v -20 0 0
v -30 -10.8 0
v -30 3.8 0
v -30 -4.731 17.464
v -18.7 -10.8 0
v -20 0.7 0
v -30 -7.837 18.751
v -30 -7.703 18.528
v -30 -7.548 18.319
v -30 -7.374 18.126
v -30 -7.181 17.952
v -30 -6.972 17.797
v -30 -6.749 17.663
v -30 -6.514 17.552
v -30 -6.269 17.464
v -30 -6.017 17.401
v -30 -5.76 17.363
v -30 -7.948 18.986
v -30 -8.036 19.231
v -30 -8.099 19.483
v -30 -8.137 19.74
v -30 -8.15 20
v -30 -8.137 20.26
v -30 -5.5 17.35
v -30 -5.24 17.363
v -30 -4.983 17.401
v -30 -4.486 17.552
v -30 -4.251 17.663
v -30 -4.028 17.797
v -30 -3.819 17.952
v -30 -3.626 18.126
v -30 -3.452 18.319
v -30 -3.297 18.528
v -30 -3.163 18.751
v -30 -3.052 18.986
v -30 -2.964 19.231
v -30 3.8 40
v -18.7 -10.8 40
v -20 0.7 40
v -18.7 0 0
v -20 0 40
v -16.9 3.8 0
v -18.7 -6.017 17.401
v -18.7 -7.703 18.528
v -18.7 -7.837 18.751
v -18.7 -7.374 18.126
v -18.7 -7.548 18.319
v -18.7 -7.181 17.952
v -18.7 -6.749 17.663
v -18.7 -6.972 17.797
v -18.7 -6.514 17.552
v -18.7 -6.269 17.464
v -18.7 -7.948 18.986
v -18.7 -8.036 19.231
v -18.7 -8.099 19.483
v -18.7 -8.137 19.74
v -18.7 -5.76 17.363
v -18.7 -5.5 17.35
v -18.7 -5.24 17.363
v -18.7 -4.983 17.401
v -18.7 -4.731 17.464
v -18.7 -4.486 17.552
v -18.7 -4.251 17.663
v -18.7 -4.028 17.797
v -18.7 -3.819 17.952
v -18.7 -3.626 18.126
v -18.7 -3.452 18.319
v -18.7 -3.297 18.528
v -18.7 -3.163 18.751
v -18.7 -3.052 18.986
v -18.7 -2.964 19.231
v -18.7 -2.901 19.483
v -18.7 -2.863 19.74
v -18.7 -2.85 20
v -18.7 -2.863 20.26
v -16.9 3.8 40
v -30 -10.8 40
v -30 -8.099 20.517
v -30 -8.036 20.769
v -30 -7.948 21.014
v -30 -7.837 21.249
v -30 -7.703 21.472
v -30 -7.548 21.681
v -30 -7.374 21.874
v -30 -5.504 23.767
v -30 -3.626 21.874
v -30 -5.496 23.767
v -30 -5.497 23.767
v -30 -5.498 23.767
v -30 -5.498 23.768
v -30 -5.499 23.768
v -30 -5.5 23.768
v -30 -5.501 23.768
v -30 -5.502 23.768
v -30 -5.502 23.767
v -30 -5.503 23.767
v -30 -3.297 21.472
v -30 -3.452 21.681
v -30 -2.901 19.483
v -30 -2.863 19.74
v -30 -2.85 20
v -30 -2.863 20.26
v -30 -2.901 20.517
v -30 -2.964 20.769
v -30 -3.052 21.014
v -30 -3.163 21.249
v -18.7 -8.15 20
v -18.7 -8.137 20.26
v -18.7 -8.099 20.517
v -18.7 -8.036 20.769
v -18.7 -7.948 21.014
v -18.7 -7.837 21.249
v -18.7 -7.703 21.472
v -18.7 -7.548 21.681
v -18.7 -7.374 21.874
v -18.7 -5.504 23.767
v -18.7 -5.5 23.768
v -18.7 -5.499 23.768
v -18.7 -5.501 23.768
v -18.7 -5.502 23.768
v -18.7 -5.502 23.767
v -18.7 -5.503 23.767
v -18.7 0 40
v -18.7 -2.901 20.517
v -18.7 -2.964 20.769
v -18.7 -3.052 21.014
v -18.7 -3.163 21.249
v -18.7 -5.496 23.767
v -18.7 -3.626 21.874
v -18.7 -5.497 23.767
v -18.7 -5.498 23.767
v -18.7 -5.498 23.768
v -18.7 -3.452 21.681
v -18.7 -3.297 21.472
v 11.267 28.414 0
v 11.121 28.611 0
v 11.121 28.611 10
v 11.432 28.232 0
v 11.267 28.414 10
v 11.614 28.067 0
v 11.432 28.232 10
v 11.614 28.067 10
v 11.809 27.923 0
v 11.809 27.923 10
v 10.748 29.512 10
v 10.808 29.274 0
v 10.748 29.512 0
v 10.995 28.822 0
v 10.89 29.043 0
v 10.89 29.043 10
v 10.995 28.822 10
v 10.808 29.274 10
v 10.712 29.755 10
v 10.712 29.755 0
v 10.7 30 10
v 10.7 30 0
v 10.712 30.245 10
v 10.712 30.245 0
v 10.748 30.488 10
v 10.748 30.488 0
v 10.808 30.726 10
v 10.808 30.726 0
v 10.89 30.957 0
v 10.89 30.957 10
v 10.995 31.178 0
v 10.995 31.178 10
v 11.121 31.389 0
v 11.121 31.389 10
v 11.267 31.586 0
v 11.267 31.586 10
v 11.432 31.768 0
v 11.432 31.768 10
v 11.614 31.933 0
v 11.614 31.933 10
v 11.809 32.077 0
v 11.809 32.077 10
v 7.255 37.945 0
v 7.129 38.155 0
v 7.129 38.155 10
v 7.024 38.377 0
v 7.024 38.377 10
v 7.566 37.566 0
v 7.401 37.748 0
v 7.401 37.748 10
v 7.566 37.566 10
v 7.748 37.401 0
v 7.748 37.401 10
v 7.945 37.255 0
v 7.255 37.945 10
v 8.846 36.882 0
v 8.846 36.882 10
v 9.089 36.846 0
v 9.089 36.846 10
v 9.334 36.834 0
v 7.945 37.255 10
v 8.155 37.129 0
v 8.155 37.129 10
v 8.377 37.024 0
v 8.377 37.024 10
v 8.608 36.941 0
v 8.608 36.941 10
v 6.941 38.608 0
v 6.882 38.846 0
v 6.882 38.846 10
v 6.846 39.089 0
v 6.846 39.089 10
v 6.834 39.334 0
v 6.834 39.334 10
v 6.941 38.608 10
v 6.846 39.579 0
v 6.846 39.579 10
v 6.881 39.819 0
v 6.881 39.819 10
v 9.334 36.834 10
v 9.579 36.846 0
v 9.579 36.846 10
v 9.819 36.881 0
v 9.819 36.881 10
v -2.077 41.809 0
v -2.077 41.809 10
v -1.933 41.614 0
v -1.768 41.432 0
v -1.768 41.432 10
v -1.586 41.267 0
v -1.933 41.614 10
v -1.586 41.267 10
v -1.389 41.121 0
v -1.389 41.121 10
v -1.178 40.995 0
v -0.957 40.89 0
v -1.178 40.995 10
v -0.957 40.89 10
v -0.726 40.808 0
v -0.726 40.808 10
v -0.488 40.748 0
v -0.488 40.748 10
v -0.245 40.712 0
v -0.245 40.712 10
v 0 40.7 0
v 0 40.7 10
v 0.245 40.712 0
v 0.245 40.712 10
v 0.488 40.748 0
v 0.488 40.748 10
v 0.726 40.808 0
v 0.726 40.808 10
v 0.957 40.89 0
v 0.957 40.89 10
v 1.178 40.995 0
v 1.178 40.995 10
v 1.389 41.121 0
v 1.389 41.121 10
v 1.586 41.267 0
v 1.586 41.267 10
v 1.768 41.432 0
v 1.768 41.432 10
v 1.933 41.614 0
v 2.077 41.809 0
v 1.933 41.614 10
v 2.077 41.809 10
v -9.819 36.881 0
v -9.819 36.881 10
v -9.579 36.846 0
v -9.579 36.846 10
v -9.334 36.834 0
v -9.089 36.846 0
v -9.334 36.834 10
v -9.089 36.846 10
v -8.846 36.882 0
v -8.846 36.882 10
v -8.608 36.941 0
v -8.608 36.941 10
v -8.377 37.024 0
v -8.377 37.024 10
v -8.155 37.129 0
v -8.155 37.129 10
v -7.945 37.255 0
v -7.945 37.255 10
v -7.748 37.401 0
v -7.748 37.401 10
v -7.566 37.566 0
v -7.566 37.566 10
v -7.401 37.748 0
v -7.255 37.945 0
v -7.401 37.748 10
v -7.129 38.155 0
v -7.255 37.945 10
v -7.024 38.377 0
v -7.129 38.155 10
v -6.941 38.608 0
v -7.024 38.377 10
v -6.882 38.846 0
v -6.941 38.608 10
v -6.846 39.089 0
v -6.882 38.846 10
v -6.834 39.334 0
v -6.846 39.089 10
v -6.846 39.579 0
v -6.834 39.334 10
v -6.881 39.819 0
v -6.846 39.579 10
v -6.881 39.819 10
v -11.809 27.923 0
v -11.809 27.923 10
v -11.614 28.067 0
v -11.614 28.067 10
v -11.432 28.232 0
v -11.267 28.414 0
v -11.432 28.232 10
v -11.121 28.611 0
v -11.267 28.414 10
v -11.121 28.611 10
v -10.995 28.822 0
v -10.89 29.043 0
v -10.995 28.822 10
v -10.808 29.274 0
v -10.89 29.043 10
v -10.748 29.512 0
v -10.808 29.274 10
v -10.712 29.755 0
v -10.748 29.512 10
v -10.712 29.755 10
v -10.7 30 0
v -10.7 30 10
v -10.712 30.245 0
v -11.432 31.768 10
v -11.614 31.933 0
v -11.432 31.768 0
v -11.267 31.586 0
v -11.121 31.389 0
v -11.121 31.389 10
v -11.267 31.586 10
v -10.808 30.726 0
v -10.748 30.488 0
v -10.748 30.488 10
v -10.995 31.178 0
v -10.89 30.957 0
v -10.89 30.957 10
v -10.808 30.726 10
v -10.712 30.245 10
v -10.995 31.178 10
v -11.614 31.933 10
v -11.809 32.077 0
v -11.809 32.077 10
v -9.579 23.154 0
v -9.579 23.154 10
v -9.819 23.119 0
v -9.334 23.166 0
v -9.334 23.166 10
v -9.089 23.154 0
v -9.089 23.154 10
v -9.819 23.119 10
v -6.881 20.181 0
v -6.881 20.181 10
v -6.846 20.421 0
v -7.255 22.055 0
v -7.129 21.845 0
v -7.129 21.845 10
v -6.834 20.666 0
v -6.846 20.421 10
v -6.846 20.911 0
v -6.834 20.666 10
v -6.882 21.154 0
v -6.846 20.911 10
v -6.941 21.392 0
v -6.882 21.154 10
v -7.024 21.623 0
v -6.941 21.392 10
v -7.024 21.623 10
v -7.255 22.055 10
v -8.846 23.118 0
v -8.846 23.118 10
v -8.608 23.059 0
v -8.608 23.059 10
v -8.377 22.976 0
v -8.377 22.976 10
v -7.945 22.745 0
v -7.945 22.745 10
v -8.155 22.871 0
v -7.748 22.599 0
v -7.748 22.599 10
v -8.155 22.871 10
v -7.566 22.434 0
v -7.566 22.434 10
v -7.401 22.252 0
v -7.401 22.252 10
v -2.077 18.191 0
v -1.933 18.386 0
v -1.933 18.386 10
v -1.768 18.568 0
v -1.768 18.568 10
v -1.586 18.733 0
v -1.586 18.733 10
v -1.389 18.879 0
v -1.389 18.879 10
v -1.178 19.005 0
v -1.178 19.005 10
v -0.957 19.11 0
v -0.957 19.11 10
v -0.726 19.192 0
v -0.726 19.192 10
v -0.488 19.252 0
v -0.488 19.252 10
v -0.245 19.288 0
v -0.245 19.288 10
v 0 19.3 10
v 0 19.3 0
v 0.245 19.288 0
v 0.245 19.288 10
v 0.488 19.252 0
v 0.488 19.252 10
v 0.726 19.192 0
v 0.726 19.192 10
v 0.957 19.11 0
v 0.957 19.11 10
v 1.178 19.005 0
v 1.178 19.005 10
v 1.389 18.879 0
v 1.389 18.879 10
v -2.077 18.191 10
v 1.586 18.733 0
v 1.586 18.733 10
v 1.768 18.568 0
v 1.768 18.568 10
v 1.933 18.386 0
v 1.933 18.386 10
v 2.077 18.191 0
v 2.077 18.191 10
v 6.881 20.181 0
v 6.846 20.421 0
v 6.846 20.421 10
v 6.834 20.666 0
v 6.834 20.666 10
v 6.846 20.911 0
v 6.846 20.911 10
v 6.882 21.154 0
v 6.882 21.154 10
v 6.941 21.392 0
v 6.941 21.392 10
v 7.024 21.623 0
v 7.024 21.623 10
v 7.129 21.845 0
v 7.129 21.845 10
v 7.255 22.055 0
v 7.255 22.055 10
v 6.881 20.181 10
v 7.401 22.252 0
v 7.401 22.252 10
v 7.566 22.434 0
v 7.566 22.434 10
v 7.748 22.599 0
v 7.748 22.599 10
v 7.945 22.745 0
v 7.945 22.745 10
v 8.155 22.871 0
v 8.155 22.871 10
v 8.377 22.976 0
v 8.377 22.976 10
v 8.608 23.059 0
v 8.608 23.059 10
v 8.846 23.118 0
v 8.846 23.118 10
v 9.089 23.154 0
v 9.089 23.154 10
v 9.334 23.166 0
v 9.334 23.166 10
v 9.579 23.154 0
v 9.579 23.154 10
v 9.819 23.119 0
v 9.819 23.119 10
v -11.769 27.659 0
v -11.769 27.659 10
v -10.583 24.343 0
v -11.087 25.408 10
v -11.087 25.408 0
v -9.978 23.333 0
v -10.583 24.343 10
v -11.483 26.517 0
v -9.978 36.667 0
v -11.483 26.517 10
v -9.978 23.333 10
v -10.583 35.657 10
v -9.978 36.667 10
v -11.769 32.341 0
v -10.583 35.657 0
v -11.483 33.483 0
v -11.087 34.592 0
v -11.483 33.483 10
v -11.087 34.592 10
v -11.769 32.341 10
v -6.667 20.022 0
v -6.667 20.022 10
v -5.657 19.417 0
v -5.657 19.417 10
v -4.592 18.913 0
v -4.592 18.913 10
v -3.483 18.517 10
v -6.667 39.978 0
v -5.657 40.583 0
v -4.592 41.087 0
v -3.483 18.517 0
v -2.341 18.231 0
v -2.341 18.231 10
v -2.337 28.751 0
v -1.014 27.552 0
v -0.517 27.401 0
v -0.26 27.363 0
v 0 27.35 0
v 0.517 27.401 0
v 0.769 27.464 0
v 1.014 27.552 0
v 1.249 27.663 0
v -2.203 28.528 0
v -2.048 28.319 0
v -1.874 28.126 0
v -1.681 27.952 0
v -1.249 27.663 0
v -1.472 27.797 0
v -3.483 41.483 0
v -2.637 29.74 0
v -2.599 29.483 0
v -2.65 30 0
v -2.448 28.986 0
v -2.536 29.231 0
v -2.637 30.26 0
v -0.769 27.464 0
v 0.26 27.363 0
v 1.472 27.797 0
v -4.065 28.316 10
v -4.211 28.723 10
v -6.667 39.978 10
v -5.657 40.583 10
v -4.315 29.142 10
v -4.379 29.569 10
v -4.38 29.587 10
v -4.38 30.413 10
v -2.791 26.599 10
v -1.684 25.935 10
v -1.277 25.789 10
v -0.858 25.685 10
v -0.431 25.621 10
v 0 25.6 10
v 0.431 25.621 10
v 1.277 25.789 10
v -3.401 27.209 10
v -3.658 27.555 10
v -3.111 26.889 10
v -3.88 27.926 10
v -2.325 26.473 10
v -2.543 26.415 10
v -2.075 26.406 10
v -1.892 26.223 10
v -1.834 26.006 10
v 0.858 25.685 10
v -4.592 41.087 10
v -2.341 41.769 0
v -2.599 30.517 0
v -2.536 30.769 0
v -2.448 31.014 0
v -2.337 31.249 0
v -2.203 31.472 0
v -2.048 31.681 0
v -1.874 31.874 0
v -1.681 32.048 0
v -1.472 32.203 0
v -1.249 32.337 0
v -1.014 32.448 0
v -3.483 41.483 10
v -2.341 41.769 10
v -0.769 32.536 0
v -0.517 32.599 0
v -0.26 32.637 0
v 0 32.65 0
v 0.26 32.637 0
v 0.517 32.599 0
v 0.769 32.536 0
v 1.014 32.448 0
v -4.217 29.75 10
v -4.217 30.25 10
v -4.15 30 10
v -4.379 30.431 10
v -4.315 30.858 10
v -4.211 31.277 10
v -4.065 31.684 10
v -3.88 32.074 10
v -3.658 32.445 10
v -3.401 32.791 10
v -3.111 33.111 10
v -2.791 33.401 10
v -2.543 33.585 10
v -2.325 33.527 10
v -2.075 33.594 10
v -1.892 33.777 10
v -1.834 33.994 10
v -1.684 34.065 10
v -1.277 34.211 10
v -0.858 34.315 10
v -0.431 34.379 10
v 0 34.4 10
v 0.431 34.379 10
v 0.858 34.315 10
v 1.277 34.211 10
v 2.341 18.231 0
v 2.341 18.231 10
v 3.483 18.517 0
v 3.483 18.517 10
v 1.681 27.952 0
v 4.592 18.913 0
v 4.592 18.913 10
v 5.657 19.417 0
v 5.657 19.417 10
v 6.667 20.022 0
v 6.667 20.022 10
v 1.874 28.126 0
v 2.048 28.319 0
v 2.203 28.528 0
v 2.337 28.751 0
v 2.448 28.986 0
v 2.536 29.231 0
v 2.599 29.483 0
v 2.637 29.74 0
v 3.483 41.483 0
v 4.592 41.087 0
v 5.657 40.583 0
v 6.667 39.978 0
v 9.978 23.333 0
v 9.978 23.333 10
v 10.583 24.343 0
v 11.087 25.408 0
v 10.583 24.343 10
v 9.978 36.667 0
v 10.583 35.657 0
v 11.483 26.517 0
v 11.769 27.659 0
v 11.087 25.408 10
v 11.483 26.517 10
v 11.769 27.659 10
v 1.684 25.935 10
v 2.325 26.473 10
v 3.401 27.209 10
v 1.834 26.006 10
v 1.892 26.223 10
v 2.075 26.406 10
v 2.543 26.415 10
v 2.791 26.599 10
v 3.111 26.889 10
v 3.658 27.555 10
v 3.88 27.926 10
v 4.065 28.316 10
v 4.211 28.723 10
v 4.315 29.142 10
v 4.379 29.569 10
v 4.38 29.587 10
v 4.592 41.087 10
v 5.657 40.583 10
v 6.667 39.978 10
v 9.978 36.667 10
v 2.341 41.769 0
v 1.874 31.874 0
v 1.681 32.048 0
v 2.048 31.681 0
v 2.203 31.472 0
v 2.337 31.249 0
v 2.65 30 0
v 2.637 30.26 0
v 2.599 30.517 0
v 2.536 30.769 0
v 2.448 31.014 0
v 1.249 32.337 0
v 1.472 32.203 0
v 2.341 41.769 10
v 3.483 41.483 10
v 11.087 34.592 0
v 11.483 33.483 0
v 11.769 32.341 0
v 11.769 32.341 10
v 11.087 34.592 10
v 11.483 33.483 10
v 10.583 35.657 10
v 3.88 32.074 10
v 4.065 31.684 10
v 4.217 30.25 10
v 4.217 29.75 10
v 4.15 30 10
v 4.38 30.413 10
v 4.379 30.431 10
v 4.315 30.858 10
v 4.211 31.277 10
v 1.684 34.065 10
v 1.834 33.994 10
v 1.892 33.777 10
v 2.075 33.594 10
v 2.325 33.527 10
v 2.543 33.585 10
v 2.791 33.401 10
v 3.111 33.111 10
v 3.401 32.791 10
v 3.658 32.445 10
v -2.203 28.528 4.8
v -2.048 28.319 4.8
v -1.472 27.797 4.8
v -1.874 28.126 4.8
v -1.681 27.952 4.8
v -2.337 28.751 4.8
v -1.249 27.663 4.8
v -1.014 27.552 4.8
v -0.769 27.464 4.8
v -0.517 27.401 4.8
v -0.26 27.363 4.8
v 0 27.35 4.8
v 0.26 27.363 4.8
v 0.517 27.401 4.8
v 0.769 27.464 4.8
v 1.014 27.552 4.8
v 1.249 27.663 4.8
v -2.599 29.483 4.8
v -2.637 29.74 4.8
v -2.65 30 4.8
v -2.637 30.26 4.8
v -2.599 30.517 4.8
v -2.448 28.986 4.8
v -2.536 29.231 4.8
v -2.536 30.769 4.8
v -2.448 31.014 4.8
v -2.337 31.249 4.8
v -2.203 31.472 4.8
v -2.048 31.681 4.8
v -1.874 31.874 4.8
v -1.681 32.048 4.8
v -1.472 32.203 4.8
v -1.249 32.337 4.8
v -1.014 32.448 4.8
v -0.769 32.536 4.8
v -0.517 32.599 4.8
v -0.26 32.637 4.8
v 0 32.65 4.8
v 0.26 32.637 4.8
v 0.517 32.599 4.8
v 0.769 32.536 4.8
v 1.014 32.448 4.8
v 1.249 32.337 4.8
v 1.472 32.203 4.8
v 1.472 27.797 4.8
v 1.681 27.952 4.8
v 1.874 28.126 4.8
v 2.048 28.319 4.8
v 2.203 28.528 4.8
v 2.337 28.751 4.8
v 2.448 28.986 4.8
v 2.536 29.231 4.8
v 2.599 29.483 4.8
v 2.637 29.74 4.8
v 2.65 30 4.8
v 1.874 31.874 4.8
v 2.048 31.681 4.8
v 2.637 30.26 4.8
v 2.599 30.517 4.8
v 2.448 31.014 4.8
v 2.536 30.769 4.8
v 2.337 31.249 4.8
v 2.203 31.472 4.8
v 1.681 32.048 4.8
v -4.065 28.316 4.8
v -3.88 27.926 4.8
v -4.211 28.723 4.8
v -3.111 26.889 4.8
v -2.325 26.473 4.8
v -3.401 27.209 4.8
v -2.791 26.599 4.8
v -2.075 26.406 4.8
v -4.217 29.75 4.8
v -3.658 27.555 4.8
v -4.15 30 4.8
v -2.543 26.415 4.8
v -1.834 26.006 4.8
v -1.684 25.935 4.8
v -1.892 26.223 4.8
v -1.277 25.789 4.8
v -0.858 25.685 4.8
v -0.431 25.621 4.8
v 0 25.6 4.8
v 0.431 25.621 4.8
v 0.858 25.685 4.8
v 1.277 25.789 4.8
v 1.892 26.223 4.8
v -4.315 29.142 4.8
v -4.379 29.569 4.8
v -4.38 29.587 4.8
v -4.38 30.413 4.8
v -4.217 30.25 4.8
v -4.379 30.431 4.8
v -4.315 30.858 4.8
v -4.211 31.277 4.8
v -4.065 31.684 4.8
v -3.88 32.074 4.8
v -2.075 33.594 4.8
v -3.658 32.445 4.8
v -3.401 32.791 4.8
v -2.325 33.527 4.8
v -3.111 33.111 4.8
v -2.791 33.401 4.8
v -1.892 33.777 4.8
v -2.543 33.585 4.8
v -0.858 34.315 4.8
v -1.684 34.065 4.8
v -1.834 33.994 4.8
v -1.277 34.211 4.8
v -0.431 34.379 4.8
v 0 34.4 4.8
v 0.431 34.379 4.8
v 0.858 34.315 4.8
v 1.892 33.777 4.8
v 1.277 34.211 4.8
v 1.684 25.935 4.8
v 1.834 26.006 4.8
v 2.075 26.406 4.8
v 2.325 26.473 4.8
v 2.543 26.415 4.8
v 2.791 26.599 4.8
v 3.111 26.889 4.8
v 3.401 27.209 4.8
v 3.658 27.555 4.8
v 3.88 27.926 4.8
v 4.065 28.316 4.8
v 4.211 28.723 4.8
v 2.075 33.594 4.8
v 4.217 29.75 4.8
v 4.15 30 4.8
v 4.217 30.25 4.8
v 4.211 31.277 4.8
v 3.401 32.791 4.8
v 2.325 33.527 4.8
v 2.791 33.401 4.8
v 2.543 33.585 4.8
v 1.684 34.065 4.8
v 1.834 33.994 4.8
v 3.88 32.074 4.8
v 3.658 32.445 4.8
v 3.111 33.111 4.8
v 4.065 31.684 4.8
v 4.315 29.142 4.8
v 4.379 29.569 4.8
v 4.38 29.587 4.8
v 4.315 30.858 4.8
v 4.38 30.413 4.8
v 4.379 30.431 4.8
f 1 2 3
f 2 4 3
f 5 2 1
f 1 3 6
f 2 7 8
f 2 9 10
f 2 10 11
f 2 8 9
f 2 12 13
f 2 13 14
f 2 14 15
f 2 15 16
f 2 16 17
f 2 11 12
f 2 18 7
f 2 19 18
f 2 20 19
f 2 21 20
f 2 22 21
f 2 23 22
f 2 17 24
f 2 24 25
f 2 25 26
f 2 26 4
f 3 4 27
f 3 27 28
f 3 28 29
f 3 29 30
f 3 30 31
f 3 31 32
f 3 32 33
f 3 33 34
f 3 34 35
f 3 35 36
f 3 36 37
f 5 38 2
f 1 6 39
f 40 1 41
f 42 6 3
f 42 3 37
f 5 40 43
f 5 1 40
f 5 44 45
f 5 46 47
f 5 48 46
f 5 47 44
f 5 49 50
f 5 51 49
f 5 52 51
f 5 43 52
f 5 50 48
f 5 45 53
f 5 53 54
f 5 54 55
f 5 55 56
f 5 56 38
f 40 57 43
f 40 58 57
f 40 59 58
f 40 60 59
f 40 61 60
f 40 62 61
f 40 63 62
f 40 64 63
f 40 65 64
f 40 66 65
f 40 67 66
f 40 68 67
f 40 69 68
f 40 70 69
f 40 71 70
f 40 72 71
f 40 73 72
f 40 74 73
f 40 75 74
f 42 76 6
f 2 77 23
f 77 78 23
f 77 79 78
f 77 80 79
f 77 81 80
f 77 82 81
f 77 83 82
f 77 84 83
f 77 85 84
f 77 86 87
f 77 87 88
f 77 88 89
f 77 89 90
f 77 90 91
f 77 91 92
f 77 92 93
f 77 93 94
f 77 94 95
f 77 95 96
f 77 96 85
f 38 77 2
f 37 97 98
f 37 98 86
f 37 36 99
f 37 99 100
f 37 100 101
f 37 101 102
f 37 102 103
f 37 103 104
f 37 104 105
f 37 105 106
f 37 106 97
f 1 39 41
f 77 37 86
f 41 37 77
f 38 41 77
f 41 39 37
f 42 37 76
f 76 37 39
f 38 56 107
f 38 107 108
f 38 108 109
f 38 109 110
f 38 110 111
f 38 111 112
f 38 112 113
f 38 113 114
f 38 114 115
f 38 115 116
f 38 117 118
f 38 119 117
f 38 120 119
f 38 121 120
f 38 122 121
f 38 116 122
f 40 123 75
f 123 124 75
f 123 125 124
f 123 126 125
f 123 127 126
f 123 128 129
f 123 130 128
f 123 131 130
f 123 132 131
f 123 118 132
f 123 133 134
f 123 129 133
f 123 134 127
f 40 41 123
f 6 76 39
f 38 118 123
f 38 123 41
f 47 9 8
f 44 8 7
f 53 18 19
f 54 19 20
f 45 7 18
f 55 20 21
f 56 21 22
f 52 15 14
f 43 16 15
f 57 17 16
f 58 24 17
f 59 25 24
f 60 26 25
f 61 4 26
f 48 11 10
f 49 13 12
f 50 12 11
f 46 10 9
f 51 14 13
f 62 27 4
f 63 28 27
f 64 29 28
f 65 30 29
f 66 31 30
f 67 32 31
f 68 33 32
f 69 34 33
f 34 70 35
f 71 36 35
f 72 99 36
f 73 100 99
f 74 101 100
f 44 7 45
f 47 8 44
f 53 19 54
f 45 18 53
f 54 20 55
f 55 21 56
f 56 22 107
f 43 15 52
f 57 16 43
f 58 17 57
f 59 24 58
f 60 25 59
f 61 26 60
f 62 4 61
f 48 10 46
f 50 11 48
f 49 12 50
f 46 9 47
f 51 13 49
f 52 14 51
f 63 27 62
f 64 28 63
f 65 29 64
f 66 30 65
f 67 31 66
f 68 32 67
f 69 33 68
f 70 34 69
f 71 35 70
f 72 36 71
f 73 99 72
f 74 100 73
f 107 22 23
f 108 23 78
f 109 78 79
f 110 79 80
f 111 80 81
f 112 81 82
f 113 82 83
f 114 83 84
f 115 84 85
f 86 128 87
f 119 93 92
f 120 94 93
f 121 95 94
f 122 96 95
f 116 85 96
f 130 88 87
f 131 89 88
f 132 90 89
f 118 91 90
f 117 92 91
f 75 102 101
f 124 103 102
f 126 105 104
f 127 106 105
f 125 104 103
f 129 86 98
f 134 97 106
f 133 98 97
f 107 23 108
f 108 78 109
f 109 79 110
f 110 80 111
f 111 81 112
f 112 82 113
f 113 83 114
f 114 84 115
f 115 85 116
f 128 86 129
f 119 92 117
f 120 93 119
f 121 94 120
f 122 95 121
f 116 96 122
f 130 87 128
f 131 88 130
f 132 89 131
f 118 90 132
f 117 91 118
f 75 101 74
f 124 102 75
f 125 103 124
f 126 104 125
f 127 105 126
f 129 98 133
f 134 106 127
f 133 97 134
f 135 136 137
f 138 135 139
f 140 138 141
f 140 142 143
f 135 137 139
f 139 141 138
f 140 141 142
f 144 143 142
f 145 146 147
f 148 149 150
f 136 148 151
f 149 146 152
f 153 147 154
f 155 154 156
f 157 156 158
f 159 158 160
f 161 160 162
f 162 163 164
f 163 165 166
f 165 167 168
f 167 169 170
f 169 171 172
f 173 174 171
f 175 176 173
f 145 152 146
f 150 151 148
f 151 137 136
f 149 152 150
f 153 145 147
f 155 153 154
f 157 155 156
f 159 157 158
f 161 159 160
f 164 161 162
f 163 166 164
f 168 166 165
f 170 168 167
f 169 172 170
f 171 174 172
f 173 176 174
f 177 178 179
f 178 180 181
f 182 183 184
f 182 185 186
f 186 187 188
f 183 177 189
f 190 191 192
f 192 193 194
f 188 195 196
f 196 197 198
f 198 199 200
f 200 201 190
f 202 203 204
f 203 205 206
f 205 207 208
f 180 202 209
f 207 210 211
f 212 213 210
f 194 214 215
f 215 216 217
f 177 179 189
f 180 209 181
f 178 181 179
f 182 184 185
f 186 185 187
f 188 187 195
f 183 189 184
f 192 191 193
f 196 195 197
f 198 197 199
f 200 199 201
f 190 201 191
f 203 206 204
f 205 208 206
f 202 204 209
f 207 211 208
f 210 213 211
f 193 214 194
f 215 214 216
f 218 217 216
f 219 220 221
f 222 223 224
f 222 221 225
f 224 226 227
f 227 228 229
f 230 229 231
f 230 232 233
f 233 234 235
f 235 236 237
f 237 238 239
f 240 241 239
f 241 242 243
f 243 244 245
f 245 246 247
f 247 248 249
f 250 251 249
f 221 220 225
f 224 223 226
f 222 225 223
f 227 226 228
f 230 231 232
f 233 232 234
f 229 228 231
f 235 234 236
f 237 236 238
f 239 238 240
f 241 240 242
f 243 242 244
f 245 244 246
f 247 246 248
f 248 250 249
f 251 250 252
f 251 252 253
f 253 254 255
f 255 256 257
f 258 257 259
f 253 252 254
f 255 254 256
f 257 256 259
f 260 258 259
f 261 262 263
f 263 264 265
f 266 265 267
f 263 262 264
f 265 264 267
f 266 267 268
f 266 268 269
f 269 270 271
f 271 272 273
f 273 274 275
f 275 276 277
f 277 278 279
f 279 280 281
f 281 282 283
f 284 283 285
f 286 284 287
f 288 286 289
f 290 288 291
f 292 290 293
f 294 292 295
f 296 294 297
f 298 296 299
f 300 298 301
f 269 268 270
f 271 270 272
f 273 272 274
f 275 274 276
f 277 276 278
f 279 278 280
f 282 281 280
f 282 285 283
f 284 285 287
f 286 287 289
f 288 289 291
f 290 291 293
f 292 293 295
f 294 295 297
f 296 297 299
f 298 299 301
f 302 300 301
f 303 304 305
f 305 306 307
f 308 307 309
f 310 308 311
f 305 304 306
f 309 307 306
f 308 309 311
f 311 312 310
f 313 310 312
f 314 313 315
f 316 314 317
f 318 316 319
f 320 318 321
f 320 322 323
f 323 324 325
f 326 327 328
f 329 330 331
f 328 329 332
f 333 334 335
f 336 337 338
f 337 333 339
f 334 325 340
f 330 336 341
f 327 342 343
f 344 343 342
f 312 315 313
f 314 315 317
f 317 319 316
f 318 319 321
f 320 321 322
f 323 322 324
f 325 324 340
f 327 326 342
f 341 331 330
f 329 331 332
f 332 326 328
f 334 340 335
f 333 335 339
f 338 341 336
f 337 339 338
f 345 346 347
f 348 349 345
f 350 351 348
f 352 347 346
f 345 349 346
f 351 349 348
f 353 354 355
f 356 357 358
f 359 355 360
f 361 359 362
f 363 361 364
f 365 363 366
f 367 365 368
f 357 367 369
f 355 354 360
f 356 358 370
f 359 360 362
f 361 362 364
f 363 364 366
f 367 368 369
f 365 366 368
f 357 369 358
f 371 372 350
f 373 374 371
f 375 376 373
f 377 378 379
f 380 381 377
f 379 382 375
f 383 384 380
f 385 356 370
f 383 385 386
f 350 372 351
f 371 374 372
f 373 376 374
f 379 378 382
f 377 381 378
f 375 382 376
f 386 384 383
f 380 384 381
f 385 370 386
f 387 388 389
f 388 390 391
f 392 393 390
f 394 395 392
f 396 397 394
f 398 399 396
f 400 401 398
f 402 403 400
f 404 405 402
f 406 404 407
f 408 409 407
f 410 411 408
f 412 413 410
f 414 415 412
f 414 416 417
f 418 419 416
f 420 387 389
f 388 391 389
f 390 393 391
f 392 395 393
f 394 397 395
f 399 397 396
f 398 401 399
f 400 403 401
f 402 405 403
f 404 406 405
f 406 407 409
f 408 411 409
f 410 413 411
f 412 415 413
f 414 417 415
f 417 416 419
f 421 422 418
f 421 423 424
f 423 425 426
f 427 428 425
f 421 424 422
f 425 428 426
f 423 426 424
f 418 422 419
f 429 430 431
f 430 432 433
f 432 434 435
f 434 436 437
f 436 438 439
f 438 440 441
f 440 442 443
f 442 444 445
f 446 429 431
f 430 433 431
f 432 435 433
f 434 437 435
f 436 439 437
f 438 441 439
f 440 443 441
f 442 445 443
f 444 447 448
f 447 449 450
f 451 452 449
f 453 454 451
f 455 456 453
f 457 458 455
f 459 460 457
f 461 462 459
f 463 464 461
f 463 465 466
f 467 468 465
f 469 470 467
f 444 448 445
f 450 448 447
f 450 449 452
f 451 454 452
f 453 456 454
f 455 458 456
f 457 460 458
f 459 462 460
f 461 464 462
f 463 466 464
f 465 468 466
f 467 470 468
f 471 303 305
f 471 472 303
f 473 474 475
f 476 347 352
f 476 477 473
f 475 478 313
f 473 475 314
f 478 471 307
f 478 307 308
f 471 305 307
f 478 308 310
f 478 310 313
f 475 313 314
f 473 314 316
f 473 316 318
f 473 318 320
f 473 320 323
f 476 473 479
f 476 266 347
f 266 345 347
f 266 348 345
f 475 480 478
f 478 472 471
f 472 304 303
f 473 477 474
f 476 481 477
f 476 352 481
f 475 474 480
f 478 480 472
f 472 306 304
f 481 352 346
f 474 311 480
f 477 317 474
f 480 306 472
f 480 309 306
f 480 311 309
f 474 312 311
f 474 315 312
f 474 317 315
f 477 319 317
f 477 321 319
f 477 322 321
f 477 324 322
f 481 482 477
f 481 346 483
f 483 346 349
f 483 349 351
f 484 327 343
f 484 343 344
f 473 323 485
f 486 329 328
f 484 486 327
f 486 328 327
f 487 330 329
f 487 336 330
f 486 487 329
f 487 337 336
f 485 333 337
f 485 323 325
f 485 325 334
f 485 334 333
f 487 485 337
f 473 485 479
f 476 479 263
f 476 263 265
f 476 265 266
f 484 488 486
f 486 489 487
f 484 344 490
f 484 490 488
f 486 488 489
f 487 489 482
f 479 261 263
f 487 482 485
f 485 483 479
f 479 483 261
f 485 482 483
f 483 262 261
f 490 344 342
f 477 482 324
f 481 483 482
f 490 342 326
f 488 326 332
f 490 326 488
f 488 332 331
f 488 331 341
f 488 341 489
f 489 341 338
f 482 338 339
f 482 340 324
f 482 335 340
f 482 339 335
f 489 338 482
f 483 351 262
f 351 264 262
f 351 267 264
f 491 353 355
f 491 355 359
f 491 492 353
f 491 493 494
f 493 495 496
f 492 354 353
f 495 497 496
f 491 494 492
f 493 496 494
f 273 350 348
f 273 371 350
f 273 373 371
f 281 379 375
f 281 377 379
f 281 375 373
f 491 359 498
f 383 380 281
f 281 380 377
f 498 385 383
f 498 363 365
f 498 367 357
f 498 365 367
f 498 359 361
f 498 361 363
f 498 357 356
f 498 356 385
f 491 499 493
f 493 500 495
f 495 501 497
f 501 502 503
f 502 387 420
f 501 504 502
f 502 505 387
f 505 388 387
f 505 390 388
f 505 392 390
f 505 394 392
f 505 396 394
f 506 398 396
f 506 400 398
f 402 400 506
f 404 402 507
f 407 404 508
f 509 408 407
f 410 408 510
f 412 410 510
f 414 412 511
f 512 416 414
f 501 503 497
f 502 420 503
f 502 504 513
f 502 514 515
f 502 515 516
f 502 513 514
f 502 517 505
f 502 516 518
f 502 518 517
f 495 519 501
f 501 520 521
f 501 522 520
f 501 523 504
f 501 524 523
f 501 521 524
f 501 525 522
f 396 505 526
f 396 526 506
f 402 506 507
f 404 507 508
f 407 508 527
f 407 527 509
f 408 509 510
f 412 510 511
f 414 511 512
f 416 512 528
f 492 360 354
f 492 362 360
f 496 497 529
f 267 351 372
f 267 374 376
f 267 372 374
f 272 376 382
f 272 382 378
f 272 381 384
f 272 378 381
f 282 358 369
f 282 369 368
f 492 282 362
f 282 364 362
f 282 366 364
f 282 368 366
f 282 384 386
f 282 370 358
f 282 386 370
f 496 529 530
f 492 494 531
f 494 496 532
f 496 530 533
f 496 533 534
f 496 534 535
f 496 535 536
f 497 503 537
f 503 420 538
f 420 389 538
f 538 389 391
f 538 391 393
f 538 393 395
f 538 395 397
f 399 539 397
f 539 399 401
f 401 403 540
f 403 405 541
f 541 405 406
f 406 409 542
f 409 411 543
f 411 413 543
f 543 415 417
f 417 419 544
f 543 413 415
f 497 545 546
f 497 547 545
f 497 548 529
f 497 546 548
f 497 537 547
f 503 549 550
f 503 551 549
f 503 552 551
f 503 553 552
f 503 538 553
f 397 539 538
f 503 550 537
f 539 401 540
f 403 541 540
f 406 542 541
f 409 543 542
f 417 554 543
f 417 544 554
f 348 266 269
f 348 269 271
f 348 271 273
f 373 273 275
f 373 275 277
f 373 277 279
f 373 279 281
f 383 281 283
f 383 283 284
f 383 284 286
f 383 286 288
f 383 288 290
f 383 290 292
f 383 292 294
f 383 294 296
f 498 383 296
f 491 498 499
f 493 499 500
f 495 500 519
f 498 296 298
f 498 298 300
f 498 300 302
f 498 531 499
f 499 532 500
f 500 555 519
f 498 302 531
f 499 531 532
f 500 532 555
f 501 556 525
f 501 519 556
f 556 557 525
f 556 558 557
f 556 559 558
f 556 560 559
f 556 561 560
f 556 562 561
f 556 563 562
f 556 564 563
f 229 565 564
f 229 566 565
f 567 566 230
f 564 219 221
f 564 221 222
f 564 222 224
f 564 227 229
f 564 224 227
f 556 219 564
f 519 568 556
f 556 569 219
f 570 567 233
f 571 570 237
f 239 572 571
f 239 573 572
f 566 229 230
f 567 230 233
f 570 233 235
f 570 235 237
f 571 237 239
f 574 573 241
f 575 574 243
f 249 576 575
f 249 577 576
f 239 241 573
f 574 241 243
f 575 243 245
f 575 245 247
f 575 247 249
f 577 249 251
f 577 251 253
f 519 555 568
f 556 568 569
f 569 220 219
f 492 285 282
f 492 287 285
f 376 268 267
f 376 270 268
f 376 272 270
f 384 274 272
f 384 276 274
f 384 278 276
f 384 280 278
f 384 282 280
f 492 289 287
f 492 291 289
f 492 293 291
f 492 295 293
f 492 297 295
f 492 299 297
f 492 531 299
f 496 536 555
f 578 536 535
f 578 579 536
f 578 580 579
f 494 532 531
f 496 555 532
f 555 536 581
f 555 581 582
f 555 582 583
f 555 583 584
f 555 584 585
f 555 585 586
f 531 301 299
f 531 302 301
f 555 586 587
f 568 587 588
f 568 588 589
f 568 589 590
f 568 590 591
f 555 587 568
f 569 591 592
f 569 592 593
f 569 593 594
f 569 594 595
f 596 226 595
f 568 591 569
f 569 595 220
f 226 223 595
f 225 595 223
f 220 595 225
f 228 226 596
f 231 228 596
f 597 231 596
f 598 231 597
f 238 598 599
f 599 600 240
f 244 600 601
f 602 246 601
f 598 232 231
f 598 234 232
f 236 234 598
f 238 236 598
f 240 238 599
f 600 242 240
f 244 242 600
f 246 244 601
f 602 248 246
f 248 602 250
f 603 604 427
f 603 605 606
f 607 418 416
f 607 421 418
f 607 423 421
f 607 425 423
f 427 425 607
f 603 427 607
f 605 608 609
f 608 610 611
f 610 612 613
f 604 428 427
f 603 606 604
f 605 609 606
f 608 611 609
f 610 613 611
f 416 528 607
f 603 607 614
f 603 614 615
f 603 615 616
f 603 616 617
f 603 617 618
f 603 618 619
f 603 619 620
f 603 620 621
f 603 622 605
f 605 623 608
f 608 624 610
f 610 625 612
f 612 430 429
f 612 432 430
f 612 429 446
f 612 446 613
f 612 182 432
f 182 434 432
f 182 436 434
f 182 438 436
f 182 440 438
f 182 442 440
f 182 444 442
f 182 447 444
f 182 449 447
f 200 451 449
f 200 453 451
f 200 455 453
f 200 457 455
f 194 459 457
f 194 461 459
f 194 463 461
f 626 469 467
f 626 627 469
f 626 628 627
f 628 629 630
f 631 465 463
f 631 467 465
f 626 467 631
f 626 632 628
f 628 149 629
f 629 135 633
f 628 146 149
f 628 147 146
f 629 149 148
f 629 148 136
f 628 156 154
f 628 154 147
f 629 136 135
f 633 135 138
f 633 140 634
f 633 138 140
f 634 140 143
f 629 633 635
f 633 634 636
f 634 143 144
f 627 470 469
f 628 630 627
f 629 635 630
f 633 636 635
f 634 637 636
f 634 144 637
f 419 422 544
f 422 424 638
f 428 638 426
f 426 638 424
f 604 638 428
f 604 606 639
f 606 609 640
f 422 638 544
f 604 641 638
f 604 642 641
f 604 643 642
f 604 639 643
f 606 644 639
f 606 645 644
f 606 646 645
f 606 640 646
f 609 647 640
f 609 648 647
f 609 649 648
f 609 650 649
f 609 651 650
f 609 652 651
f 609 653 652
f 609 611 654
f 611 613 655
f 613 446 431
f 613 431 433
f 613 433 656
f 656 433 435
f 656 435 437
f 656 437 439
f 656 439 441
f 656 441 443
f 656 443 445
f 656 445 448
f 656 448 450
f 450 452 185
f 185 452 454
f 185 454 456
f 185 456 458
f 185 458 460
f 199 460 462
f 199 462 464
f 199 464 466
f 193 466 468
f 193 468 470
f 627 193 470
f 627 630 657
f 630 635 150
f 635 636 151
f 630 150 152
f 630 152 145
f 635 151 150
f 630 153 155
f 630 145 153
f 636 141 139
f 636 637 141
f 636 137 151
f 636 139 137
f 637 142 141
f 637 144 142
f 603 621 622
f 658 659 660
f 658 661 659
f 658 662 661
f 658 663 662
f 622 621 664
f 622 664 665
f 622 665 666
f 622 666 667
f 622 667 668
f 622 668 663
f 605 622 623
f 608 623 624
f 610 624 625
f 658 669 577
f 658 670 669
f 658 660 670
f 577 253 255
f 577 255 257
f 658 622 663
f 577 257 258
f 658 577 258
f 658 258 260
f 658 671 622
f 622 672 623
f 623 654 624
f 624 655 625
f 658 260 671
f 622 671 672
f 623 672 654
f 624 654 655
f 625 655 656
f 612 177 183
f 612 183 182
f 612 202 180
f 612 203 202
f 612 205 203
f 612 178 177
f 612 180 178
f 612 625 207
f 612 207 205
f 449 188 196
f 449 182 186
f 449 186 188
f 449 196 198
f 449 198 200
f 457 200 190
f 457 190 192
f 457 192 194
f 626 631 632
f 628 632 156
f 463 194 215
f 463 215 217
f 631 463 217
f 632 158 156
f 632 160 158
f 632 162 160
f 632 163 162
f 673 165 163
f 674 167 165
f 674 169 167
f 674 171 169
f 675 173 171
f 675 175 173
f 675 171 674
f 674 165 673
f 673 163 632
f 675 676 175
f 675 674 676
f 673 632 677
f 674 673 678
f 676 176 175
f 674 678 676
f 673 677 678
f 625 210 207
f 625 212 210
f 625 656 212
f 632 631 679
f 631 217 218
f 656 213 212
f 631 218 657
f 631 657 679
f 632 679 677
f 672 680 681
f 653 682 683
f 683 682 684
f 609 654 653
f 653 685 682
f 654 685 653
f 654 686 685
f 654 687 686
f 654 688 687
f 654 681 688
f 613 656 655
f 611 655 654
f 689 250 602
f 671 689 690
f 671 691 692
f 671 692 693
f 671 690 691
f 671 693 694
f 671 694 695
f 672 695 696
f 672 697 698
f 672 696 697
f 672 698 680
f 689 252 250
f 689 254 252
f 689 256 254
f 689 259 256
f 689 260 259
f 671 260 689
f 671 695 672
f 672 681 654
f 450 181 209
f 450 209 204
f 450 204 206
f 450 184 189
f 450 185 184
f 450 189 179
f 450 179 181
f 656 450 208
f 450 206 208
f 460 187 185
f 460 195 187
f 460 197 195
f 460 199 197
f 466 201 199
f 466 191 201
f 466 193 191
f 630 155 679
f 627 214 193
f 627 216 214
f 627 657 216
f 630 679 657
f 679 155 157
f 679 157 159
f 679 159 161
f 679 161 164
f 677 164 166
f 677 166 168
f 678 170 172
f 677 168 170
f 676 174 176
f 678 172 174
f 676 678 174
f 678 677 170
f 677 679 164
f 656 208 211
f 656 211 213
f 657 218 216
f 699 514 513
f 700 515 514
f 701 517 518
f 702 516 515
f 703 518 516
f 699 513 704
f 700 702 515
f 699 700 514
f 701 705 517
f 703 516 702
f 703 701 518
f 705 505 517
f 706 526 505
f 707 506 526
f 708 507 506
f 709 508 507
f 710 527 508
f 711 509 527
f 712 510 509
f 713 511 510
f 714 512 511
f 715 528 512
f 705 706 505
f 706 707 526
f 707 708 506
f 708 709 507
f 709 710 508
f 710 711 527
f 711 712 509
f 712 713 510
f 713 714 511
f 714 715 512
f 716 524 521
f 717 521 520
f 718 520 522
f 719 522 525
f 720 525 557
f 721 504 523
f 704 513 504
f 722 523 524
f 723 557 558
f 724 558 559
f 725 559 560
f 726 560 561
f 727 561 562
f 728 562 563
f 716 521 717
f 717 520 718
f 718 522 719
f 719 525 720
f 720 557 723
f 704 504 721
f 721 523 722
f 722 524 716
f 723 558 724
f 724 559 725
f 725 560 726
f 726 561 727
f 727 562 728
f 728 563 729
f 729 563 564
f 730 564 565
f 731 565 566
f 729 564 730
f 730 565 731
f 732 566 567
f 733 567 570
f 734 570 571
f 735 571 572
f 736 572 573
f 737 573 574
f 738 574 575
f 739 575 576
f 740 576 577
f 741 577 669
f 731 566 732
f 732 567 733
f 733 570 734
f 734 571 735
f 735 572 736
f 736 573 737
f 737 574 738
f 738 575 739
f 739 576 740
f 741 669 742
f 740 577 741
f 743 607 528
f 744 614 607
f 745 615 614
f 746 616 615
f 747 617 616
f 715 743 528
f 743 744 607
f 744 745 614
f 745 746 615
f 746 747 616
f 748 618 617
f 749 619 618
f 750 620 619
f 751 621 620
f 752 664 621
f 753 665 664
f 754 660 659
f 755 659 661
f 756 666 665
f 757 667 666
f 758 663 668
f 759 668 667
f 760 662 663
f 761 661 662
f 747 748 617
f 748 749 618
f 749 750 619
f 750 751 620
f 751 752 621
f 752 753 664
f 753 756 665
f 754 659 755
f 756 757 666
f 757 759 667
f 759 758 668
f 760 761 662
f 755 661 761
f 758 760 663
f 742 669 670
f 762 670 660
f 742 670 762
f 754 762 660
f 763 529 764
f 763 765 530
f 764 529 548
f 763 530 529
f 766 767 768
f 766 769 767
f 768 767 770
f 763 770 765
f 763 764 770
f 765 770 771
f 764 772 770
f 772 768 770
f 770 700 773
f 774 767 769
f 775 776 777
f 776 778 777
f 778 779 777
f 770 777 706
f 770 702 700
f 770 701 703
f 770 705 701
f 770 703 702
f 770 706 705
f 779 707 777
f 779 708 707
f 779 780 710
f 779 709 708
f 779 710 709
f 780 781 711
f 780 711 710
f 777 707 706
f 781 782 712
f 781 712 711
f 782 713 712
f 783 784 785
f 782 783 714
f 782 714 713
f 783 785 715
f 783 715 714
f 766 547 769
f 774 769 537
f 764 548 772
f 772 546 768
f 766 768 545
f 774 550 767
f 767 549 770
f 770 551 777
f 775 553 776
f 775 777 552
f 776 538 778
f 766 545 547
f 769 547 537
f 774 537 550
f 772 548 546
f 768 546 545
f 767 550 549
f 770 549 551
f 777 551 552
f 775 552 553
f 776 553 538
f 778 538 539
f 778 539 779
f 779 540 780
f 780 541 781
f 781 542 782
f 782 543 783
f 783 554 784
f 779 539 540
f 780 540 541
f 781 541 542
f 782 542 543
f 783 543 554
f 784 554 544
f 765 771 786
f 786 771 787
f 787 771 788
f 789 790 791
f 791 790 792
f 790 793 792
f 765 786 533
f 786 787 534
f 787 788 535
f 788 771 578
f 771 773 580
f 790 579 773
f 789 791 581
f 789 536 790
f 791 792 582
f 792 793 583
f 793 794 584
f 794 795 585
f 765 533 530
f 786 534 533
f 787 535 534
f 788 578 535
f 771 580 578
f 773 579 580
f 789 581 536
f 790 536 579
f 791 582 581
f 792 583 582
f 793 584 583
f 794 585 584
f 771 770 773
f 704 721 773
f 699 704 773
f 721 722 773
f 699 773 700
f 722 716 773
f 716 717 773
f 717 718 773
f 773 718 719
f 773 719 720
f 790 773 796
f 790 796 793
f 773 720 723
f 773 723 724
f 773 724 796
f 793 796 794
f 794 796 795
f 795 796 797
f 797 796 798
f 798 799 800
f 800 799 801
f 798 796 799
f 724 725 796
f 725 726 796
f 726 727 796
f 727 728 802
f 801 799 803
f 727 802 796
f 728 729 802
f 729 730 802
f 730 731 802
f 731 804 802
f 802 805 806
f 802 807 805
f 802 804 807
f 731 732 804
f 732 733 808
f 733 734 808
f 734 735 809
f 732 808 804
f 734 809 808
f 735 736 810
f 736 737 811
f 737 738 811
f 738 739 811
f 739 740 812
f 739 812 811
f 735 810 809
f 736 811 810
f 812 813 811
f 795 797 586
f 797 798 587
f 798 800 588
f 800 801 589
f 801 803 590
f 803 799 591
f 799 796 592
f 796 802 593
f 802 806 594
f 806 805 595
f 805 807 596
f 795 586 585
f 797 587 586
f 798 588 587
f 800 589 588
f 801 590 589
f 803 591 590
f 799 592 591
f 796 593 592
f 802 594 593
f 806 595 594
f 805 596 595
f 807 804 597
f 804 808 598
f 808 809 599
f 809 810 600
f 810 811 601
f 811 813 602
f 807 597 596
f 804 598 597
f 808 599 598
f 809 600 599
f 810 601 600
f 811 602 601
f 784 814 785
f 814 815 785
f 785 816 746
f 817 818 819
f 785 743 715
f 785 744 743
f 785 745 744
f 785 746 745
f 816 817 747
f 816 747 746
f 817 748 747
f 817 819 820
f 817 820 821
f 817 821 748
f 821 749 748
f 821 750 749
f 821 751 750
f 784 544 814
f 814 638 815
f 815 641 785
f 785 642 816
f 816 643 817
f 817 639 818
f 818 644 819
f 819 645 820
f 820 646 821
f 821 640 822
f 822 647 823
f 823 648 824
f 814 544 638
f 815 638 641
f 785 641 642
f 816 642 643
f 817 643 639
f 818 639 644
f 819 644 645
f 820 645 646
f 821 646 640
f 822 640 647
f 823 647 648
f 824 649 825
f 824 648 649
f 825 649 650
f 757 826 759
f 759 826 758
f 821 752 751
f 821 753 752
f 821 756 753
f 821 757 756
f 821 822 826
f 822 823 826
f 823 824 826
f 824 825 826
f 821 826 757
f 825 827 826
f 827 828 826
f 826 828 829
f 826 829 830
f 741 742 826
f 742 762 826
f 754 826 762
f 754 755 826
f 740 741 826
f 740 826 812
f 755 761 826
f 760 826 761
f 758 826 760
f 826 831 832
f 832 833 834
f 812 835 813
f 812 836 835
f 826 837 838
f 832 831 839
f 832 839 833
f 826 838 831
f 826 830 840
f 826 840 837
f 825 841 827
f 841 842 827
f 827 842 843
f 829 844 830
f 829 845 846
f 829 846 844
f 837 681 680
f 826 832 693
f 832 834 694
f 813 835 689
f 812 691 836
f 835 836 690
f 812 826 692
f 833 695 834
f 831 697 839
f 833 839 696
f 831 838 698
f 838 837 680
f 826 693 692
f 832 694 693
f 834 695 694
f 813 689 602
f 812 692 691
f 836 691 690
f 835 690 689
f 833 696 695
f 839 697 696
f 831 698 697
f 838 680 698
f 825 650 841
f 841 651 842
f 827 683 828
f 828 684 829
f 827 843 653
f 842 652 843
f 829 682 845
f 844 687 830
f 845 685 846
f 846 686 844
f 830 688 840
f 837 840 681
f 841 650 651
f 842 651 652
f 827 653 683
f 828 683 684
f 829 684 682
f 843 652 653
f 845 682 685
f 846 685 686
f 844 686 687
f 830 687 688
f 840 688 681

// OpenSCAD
// file: arca_clamp.scad
// Arca clamp for the Sirui TY-C10 — shared by P0c (test) and P1 (carriage).
//
// Local coordinates match the assembly, centred on the plate:
//   x across the jaws (fixed jaw -x, moving jaw +x)
//   y away from the clamp face (clamp face y = 0, plate y 0..plate_t)
//   z along the slide axis (vertical in use, plate drops in from +z)
// The jaw profile is constant along z, so parts print standing on their -z
// end: the 45° tips lie in the layer plane and need no supports.
include <../params.scad>

// Clamp parameters live in params.scad (other parts need them too).

// ---------------------------------------------------------------- 2D profiles
module fixed_jaw_2d() {
    c = face_c + jaw_fixed_off;
    wall = plate_w/2 + jaw_wall_clr;
    polygon([[-jaw_out_x, 0], [-wall, 0], [-wall, c - wall],
             [-(c - jaw_tip_y), jaw_tip_y], [-jaw_out_x, jaw_tip_y]]);
}

// Moving jaw drawn at its nominal closed position.
module moving_jaw_2d() {
    wall = plate_w/2 + jaw_wall_clr;
    foot = channel_x + foot_clr;
    polygon([[foot, channel_floor + foot_clr], [jaw_out_x, channel_floor + foot_clr],
             [jaw_out_x, jaw_tip_y], [face_c - jaw_tip_y, jaw_tip_y],
             [wall, face_c - wall], [wall, 0], [foot, 0]]);
}

module body_2d() {
    difference() {
        translate([-jaw_out_x, -clamp_back_t]) square([jaw_out_x + body_end_x, clamp_back_t]);
        translate([channel_x, channel_floor]) square([body_end_x, -channel_floor + 1]);
    }
    fixed_jaw_2d();
}

// Horizontal hole along +x from x = 0, with a teardrop point towards +z so
// it prints cleanly when the part stands on its z end.
module bolt_hole_x(d, len) {
    rotate([0, 90, 0]) linear_extrude(len)
        hull() { circle(d = d); translate([-d * 0.71, 0]) circle(d = 0.01); }
}

// ---------------------------------------------------------------- parts
// Clamp body of length len (z, centred). Stop pin at the -z end.
// nut_slot: "back" drops the nut in from the back face (free-standing clamp),
// "top" from the +z end (when the back face is built into the carriage).
module clamp_body(len = 40, nut_slot = "back") {
    nut_w = nut_af + clr_hole;
    difference() {
        union() {
            linear_extrude(len, center = true) body_2d();
            stop_pin();
        }
        // bolt bore, from the channel wall back past the nut
        translate([-12, bolt_y, 0]) bolt_hole_x(bolt_d, channel_x + 13);
        // captive nut, flats facing the slot walls
        translate([nut_x0, bolt_y, 0]) rotate([0, 90, 0]) linear_extrude(nut_h + 0.4)
            rotate(nut_slot == "back" ? 30 : 0) circle(d = nut_w / cos(30), $fn = 6);
        if (nut_slot == "back")
            translate([nut_x0, -clamp_back_t - 1, -nut_w/2])
                cube([nut_h + 0.4, -bolt_y + clamp_back_t + 1, nut_w]);
        else
            translate([nut_x0, bolt_y - nut_w/2, 0]) cube([nut_h + 0.4, nut_w, len/2 + 1]);
    }
}

// Seats in the plate's safety notch: its 45° top matches the notch ramp,
// so the plate's lower end comes to rest on it.
module stop_pin() {
    // Notch floor: y = notch_end_d - (z - z_end). The pin's top follows it, so
    // the plate comes to rest centred at z = 0. (Below y = 0.5 the line runs
    // inside the plate's full-length channel, so it never touches.)
    z_end = -plate_l/2;
    rotate([90, 0, 90]) linear_extrude(pin_w, center = true)
        polygon([[0, z_end - 2], [0, z_end + notch_end_d],
                 [pin_h, z_end + notch_end_d - pin_h], [pin_h, z_end - 2]]);
}

module clamp_moving_jaw(len = 40) {
    difference() {
        linear_extrude(len, center = true) moving_jaw_2d();
        translate([channel_x - 1, bolt_y, 0]) bolt_hole_x(bolt_d, jaw_out_x - channel_x + 2);
    }
}

// Thumb knob over an M5 socket head (press fit on crush ribs, 0.25 mm each:
// P0c's 0.5 mm ribs needed a hammer). Lies flat, knob face (which pushes the
// jaw) at z = 0. Head pocket opens on top. Sizes in params.scad.
module clamp_knob() {
    difference() {
        cylinder(d = knob_d, h = knob_h);
        for (a = [0:45:315]) rotate(a) translate([knob_d/2 + 1.2, 0, -1]) cylinder(d = 5, h = knob_h + 2);
        translate([0, 0, -1]) cylinder(d = bolt_d, h = knob_h + 2);
        translate([0, 0, knob_h - head_h - 0.2]) linear_extrude(head_h + 1) difference() {
            circle(d = head_d + 0.3);
            for (a = [0:60:300]) rotate(a) translate([(head_d + 0.3)/2 + 0.25, 0]) circle(d = 1, $fn = 12);
        }
    }
}

// Clamp parts in place, with the plate, for checking (closed position).
module clamp_preview(len = 40) {
    color([1, 0.55, 0.1]) clamp_body(len);
    color([0.9, 0.4, 0.05]) clamp_moving_jaw(len);
    color([0.5, 0.5, 0.5]) translate([jaw_out_x, bolt_y, 0]) rotate([0, 90, 0]) clamp_knob();
}
// main file
// P3 moving jaw + P4 clamp knob for the carriage (P1). Same as P0c's, but
// the jaw is mirrored: on the carriage the moving jaw is on the left.
// Hardware: 1x M5x30 DIN912 (pressed into the knob), 1x M5 H4 nut (drops in
// from the top of the carriage's clamp body).
include <../params.scad>
use <arca_clamp.scad>

clamp_len = carriage_clamp_len;

translate([0, 0, clamp_len/2]) mirror([1, 0, 0]) clamp_moving_jaw(clamp_len);
translate([0, 30, 0]) clamp_knob();
